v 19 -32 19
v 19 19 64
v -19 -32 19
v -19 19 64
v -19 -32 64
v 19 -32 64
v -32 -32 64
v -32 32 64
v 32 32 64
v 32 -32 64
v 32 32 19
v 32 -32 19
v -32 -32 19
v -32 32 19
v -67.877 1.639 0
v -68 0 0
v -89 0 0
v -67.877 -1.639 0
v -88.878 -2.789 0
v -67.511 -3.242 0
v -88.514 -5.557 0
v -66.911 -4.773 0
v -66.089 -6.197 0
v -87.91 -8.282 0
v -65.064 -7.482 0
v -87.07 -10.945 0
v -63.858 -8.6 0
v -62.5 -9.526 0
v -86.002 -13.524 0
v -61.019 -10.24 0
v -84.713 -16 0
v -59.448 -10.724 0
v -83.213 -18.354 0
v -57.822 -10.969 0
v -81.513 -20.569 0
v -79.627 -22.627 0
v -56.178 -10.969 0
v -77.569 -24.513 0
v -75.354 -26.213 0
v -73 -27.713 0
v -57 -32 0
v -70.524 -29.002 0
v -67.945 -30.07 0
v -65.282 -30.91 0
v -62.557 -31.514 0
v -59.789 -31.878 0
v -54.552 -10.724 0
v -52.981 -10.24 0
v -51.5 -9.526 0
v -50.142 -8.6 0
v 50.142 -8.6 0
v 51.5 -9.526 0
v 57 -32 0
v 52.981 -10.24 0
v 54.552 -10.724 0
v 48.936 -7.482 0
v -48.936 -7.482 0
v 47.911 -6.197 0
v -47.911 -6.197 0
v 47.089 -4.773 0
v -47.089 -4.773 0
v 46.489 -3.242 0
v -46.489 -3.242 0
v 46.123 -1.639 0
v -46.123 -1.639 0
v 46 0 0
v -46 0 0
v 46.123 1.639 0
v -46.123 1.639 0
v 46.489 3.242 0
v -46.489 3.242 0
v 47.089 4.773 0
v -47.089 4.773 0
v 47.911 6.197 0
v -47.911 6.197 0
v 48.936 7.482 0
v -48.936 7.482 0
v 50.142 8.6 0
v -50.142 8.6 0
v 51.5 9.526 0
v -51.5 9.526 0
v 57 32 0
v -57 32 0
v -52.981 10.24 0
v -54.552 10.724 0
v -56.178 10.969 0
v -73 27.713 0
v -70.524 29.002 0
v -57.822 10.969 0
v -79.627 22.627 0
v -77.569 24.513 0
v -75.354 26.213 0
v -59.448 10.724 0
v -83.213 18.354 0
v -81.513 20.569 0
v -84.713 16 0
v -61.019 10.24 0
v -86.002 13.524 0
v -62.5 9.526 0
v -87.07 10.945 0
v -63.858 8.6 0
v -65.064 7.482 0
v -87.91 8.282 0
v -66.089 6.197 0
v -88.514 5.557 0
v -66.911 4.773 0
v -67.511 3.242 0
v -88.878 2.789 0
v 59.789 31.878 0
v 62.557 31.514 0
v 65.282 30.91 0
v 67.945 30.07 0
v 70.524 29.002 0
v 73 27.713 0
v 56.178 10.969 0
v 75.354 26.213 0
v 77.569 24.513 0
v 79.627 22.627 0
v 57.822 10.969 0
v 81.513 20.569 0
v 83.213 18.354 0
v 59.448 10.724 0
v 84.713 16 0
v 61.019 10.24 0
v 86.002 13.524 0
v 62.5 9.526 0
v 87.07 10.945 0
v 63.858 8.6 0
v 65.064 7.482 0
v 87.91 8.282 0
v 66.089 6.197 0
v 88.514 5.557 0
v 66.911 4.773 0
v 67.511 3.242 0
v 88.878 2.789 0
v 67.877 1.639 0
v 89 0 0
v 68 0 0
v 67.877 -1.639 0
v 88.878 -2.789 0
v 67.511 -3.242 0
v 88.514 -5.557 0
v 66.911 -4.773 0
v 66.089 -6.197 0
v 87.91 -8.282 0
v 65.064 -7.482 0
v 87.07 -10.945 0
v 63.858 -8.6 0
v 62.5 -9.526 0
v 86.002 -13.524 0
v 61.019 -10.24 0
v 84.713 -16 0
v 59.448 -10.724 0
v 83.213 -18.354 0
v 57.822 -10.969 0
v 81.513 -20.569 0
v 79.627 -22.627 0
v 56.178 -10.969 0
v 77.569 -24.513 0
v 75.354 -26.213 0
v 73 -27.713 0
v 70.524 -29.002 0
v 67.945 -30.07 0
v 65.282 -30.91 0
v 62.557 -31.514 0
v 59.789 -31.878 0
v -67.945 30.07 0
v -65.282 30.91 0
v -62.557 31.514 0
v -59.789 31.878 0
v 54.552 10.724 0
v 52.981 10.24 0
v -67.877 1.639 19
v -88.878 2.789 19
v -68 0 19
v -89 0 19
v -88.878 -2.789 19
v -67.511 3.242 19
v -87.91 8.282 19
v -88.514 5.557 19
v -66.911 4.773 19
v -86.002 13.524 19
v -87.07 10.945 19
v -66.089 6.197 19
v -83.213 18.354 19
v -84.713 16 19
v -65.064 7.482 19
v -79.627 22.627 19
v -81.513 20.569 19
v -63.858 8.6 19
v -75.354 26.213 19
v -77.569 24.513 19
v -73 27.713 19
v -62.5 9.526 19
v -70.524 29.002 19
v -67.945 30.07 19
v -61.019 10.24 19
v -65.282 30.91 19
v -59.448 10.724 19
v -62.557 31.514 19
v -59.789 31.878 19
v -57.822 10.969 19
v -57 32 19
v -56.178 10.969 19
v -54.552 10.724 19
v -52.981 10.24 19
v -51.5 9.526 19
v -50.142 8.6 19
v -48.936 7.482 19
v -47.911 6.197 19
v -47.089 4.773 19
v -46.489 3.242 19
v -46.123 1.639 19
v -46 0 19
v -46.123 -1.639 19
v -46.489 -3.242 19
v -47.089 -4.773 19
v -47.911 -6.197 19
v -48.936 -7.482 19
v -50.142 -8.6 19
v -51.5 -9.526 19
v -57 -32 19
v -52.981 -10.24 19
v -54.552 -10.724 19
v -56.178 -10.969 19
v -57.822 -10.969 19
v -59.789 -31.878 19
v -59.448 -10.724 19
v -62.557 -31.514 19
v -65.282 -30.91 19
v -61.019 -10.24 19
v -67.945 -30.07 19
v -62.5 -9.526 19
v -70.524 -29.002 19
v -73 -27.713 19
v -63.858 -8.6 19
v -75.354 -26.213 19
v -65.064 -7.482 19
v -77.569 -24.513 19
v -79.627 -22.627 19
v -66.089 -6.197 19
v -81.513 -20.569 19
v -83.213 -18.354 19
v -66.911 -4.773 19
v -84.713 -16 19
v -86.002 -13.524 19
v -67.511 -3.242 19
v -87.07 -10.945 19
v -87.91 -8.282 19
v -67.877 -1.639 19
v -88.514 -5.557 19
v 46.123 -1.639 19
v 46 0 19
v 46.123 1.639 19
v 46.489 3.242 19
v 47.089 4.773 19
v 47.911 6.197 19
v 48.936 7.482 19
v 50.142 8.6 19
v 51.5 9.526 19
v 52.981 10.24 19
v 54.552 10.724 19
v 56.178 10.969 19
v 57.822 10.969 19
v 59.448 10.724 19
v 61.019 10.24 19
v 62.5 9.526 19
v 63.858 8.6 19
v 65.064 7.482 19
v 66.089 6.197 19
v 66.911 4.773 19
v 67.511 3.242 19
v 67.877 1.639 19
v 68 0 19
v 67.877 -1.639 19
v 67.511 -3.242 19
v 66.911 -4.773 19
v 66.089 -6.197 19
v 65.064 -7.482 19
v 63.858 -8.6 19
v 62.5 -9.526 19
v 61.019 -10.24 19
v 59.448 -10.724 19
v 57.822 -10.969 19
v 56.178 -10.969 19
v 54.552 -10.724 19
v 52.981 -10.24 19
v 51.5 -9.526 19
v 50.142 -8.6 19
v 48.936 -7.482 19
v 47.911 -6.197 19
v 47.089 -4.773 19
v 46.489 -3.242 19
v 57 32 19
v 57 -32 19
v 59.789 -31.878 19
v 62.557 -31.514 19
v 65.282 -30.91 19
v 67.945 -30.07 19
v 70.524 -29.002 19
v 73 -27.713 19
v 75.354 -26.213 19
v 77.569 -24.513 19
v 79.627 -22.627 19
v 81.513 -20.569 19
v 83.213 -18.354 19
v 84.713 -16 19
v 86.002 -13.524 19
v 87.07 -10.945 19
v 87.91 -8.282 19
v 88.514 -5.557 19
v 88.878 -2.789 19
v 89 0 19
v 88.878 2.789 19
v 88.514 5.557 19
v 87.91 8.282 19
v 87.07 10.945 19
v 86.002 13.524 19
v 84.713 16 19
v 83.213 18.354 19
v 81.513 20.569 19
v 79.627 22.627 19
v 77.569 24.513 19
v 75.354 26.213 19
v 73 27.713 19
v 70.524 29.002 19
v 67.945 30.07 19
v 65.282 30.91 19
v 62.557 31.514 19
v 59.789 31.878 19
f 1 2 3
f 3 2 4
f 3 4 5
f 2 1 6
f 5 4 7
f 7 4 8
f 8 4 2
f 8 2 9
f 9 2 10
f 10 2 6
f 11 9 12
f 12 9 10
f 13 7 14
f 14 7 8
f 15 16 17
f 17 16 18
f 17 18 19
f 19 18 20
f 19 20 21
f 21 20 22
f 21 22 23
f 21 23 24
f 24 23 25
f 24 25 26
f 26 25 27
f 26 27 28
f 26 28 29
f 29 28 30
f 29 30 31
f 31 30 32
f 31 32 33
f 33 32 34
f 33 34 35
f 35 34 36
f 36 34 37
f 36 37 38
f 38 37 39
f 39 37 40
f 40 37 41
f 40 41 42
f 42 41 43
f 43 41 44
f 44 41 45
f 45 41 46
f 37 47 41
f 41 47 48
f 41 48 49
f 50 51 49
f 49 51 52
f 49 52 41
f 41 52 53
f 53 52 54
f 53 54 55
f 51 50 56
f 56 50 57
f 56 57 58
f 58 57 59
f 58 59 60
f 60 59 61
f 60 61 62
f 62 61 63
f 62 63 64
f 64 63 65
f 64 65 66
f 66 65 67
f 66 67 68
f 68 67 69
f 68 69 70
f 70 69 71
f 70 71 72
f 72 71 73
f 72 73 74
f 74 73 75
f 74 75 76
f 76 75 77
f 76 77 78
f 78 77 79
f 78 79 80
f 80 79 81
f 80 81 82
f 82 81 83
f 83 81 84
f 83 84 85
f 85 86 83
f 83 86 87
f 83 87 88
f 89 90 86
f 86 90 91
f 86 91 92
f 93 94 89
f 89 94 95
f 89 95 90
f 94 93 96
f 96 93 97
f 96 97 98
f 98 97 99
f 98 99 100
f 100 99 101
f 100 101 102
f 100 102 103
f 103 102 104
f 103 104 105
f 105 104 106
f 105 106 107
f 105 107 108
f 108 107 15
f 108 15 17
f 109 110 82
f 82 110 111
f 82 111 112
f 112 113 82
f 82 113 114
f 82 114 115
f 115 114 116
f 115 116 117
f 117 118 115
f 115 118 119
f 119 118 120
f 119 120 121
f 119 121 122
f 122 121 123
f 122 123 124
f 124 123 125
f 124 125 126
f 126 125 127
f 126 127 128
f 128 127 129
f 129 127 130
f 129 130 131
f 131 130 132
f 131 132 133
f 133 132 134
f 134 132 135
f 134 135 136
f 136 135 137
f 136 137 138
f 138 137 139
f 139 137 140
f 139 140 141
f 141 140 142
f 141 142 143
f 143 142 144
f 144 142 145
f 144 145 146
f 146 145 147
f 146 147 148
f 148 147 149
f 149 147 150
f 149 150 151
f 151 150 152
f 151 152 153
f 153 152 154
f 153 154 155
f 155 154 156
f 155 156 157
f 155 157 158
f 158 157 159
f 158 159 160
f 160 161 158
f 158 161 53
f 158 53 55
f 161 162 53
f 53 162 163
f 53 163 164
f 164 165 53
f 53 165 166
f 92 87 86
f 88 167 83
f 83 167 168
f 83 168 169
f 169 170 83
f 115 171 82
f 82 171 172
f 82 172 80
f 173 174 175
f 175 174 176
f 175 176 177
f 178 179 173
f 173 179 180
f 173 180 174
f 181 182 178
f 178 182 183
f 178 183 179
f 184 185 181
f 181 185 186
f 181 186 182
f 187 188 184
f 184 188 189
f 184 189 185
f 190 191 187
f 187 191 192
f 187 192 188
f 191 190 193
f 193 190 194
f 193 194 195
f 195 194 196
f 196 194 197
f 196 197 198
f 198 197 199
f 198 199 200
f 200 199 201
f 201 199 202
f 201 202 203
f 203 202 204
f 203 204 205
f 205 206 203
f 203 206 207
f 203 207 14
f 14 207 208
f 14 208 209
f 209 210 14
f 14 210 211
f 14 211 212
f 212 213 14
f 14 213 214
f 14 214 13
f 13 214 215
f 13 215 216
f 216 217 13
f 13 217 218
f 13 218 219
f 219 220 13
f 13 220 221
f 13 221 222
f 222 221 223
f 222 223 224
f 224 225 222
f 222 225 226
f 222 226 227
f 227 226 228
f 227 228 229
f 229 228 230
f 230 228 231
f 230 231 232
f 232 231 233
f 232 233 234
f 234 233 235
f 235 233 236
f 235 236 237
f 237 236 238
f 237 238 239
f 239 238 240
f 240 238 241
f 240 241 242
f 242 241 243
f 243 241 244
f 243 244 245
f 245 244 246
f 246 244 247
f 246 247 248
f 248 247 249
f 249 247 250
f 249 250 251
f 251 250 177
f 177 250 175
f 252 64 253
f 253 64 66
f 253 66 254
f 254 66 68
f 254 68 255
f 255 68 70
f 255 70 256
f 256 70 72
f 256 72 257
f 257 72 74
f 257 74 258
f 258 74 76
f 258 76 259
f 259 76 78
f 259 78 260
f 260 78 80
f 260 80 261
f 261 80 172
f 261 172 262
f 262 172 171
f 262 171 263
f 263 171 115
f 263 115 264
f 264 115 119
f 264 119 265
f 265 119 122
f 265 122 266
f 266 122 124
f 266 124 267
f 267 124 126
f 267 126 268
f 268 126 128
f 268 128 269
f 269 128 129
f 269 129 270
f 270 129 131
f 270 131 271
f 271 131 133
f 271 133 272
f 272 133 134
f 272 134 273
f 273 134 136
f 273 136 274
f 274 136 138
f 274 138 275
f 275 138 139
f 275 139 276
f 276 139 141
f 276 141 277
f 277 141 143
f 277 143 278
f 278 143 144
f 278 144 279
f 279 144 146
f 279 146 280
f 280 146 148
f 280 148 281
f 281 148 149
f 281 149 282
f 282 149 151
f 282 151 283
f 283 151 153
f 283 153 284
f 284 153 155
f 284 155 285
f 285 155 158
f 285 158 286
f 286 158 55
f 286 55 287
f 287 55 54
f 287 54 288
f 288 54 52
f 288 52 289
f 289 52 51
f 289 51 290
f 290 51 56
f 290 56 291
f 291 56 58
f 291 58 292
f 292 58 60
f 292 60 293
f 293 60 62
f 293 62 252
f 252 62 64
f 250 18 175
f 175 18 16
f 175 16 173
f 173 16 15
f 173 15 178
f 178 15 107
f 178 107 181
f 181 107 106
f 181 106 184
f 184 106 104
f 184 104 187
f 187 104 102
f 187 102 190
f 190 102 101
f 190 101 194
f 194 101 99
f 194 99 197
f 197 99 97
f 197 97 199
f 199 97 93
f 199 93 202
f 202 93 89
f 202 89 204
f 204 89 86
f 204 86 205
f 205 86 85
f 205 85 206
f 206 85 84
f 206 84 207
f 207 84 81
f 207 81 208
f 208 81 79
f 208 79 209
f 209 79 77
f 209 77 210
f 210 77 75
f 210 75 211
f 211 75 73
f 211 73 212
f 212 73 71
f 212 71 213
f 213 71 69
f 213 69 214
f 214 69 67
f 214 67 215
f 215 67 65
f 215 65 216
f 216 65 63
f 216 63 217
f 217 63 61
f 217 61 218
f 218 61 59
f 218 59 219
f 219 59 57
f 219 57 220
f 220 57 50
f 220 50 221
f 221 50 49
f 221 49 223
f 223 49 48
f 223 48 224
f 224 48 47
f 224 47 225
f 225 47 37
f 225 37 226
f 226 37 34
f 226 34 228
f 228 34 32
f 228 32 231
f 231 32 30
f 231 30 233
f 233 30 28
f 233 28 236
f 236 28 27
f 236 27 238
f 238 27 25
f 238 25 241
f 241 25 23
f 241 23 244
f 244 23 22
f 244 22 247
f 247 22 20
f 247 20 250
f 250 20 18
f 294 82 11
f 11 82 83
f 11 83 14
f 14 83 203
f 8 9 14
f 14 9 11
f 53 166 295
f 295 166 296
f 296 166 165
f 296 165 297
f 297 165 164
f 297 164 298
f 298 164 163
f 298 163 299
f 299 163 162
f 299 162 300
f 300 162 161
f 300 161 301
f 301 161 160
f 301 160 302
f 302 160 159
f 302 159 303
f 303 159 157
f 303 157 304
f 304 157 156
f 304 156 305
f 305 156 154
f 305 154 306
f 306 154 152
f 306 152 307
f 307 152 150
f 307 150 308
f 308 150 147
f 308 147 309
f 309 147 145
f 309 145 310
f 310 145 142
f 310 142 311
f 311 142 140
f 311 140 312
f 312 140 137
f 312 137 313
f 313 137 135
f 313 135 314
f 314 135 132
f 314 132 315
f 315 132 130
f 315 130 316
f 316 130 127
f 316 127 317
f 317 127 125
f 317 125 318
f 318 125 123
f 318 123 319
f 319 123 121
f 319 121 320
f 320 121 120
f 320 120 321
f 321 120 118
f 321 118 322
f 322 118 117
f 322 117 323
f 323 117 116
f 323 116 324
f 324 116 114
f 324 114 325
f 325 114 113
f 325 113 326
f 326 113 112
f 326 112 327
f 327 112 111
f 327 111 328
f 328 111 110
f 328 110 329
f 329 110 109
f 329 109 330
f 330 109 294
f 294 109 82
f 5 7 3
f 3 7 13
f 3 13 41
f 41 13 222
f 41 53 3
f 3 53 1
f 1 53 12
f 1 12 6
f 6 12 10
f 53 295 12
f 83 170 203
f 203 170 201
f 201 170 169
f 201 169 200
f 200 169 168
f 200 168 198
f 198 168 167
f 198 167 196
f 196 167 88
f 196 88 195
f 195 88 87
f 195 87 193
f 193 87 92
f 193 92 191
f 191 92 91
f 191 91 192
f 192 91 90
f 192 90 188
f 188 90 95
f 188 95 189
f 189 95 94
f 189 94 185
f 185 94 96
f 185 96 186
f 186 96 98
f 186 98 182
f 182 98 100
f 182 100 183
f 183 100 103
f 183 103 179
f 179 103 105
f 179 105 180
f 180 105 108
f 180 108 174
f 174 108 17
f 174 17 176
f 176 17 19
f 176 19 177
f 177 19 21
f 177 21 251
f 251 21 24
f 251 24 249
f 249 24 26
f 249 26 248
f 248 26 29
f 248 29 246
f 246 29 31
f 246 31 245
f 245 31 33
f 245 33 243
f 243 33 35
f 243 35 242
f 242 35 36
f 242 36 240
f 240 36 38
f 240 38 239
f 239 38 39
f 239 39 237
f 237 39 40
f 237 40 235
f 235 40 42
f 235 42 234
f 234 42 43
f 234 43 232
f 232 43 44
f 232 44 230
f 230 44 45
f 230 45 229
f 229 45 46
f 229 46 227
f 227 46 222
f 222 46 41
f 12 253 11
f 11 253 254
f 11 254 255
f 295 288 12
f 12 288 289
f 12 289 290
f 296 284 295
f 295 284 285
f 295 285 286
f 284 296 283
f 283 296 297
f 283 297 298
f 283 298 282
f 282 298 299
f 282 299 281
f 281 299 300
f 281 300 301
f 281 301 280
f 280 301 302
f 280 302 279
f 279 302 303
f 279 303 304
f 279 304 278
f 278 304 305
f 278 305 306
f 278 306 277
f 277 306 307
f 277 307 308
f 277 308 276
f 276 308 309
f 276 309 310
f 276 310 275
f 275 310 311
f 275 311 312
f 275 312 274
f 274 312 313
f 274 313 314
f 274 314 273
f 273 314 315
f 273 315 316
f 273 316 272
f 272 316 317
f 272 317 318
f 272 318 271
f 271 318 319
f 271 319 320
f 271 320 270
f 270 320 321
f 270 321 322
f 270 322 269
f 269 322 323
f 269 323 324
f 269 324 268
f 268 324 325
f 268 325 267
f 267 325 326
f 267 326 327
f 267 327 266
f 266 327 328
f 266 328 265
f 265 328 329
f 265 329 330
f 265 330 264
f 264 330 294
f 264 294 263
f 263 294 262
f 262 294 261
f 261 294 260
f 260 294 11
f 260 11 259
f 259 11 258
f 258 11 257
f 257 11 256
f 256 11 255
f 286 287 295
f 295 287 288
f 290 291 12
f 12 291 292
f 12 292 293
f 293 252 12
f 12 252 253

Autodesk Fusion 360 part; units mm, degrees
sketch "Sketch1" plane through (0, 0, 0) normal (0, 0, 1) x (1, 0, 0)
  line L0 (57, 32) -> (-57, 32)
  line L1 (-57, -32) -> (57, -32)
  circle A0 centre (57, 0) radius 11
  circle A1 centre (-57, 0) radius 11
  arc A2 (57, -32) -> (57, 32) centre (57, 0) ccw
  arc A3 (-57, 32) -> (-57, -32) centre (-57, 0) ccw
  line L2 (-57, -32) -> (-32, -32) construction
  line L3 (57, -32) -> (32, -32) construction
  dimension "d1" = 114
  dimension "d2" = 64
  dimension "d3" = 64
  dimension "d4" = 64
  dimension "d5" = 22
  dimension "d6" = 22
  dimension "d9" = 25
  dimension "d10" = 25
extrude "Extrude1" add sketch "Sketch1" along normal blind 19
sketch "Sketch2" plane through (0, 0, 0) normal (0, 1, 0) x (1, 0, 0)
  line L0 (-32, 0) -> (32, 0)
  line L1 (32, 0) -> (32, -64)
  line L2 (32, -64) -> (-32, -64)
  line L3 (-32, -64) -> (-32, 0)
  dimension "d11" = 64
extrude "Extrude2" add sketch "Sketch2" along normal mid plane 64
sketch "Sketch3" plane through (0, 0, 64) normal (0, 0, 1) x (-1, 0, 0)
  line L0 (-32, 32) -> (-32, -32)
  line L1 (-32, -32) -> (32, -32)
  line L2 (32, -32) -> (32, 32)
  line L3 (32, 32) -> (-32, 32)
  line L4 (32, 32) -> (32, -19)
  line L5 (-32, 32) -> (-32, -19)
  line L6 (32, 32) -> (19, 32)
  line L7 (-32, 32) -> (-19, 32)
  line L8 (19, 32) -> (19, -19)
  line L9 (-19, 32) -> (-19, -19)
  line L10 (-19, -19) -> (19, -19)
  dimension "d14" = 51
  dimension "d15" = 51
  dimension "d16" = 13
  dimension "d17" = 13
extrude "Extrude3" cut sketch "Sketch3" against normal blind 45 contours L3 L8 L9 L10
sketch "Sketch4" plane through (19, 0, 0) normal (-1, 0, 0) x (0, -1, 0)
  line L0 (32, 64) -> (-19, 64)
  line L1 (-19, 64) -> (-19, 19)
  line L2 (-19, 19) -> (32, 19)
  line L3 (32, 19) -> (32, 64)
  line L4 (-19, 64) -> (32, 19)
extrude "Extrude4" add sketch "Sketch4" along normal blind 38 contours L1 L2 L4
